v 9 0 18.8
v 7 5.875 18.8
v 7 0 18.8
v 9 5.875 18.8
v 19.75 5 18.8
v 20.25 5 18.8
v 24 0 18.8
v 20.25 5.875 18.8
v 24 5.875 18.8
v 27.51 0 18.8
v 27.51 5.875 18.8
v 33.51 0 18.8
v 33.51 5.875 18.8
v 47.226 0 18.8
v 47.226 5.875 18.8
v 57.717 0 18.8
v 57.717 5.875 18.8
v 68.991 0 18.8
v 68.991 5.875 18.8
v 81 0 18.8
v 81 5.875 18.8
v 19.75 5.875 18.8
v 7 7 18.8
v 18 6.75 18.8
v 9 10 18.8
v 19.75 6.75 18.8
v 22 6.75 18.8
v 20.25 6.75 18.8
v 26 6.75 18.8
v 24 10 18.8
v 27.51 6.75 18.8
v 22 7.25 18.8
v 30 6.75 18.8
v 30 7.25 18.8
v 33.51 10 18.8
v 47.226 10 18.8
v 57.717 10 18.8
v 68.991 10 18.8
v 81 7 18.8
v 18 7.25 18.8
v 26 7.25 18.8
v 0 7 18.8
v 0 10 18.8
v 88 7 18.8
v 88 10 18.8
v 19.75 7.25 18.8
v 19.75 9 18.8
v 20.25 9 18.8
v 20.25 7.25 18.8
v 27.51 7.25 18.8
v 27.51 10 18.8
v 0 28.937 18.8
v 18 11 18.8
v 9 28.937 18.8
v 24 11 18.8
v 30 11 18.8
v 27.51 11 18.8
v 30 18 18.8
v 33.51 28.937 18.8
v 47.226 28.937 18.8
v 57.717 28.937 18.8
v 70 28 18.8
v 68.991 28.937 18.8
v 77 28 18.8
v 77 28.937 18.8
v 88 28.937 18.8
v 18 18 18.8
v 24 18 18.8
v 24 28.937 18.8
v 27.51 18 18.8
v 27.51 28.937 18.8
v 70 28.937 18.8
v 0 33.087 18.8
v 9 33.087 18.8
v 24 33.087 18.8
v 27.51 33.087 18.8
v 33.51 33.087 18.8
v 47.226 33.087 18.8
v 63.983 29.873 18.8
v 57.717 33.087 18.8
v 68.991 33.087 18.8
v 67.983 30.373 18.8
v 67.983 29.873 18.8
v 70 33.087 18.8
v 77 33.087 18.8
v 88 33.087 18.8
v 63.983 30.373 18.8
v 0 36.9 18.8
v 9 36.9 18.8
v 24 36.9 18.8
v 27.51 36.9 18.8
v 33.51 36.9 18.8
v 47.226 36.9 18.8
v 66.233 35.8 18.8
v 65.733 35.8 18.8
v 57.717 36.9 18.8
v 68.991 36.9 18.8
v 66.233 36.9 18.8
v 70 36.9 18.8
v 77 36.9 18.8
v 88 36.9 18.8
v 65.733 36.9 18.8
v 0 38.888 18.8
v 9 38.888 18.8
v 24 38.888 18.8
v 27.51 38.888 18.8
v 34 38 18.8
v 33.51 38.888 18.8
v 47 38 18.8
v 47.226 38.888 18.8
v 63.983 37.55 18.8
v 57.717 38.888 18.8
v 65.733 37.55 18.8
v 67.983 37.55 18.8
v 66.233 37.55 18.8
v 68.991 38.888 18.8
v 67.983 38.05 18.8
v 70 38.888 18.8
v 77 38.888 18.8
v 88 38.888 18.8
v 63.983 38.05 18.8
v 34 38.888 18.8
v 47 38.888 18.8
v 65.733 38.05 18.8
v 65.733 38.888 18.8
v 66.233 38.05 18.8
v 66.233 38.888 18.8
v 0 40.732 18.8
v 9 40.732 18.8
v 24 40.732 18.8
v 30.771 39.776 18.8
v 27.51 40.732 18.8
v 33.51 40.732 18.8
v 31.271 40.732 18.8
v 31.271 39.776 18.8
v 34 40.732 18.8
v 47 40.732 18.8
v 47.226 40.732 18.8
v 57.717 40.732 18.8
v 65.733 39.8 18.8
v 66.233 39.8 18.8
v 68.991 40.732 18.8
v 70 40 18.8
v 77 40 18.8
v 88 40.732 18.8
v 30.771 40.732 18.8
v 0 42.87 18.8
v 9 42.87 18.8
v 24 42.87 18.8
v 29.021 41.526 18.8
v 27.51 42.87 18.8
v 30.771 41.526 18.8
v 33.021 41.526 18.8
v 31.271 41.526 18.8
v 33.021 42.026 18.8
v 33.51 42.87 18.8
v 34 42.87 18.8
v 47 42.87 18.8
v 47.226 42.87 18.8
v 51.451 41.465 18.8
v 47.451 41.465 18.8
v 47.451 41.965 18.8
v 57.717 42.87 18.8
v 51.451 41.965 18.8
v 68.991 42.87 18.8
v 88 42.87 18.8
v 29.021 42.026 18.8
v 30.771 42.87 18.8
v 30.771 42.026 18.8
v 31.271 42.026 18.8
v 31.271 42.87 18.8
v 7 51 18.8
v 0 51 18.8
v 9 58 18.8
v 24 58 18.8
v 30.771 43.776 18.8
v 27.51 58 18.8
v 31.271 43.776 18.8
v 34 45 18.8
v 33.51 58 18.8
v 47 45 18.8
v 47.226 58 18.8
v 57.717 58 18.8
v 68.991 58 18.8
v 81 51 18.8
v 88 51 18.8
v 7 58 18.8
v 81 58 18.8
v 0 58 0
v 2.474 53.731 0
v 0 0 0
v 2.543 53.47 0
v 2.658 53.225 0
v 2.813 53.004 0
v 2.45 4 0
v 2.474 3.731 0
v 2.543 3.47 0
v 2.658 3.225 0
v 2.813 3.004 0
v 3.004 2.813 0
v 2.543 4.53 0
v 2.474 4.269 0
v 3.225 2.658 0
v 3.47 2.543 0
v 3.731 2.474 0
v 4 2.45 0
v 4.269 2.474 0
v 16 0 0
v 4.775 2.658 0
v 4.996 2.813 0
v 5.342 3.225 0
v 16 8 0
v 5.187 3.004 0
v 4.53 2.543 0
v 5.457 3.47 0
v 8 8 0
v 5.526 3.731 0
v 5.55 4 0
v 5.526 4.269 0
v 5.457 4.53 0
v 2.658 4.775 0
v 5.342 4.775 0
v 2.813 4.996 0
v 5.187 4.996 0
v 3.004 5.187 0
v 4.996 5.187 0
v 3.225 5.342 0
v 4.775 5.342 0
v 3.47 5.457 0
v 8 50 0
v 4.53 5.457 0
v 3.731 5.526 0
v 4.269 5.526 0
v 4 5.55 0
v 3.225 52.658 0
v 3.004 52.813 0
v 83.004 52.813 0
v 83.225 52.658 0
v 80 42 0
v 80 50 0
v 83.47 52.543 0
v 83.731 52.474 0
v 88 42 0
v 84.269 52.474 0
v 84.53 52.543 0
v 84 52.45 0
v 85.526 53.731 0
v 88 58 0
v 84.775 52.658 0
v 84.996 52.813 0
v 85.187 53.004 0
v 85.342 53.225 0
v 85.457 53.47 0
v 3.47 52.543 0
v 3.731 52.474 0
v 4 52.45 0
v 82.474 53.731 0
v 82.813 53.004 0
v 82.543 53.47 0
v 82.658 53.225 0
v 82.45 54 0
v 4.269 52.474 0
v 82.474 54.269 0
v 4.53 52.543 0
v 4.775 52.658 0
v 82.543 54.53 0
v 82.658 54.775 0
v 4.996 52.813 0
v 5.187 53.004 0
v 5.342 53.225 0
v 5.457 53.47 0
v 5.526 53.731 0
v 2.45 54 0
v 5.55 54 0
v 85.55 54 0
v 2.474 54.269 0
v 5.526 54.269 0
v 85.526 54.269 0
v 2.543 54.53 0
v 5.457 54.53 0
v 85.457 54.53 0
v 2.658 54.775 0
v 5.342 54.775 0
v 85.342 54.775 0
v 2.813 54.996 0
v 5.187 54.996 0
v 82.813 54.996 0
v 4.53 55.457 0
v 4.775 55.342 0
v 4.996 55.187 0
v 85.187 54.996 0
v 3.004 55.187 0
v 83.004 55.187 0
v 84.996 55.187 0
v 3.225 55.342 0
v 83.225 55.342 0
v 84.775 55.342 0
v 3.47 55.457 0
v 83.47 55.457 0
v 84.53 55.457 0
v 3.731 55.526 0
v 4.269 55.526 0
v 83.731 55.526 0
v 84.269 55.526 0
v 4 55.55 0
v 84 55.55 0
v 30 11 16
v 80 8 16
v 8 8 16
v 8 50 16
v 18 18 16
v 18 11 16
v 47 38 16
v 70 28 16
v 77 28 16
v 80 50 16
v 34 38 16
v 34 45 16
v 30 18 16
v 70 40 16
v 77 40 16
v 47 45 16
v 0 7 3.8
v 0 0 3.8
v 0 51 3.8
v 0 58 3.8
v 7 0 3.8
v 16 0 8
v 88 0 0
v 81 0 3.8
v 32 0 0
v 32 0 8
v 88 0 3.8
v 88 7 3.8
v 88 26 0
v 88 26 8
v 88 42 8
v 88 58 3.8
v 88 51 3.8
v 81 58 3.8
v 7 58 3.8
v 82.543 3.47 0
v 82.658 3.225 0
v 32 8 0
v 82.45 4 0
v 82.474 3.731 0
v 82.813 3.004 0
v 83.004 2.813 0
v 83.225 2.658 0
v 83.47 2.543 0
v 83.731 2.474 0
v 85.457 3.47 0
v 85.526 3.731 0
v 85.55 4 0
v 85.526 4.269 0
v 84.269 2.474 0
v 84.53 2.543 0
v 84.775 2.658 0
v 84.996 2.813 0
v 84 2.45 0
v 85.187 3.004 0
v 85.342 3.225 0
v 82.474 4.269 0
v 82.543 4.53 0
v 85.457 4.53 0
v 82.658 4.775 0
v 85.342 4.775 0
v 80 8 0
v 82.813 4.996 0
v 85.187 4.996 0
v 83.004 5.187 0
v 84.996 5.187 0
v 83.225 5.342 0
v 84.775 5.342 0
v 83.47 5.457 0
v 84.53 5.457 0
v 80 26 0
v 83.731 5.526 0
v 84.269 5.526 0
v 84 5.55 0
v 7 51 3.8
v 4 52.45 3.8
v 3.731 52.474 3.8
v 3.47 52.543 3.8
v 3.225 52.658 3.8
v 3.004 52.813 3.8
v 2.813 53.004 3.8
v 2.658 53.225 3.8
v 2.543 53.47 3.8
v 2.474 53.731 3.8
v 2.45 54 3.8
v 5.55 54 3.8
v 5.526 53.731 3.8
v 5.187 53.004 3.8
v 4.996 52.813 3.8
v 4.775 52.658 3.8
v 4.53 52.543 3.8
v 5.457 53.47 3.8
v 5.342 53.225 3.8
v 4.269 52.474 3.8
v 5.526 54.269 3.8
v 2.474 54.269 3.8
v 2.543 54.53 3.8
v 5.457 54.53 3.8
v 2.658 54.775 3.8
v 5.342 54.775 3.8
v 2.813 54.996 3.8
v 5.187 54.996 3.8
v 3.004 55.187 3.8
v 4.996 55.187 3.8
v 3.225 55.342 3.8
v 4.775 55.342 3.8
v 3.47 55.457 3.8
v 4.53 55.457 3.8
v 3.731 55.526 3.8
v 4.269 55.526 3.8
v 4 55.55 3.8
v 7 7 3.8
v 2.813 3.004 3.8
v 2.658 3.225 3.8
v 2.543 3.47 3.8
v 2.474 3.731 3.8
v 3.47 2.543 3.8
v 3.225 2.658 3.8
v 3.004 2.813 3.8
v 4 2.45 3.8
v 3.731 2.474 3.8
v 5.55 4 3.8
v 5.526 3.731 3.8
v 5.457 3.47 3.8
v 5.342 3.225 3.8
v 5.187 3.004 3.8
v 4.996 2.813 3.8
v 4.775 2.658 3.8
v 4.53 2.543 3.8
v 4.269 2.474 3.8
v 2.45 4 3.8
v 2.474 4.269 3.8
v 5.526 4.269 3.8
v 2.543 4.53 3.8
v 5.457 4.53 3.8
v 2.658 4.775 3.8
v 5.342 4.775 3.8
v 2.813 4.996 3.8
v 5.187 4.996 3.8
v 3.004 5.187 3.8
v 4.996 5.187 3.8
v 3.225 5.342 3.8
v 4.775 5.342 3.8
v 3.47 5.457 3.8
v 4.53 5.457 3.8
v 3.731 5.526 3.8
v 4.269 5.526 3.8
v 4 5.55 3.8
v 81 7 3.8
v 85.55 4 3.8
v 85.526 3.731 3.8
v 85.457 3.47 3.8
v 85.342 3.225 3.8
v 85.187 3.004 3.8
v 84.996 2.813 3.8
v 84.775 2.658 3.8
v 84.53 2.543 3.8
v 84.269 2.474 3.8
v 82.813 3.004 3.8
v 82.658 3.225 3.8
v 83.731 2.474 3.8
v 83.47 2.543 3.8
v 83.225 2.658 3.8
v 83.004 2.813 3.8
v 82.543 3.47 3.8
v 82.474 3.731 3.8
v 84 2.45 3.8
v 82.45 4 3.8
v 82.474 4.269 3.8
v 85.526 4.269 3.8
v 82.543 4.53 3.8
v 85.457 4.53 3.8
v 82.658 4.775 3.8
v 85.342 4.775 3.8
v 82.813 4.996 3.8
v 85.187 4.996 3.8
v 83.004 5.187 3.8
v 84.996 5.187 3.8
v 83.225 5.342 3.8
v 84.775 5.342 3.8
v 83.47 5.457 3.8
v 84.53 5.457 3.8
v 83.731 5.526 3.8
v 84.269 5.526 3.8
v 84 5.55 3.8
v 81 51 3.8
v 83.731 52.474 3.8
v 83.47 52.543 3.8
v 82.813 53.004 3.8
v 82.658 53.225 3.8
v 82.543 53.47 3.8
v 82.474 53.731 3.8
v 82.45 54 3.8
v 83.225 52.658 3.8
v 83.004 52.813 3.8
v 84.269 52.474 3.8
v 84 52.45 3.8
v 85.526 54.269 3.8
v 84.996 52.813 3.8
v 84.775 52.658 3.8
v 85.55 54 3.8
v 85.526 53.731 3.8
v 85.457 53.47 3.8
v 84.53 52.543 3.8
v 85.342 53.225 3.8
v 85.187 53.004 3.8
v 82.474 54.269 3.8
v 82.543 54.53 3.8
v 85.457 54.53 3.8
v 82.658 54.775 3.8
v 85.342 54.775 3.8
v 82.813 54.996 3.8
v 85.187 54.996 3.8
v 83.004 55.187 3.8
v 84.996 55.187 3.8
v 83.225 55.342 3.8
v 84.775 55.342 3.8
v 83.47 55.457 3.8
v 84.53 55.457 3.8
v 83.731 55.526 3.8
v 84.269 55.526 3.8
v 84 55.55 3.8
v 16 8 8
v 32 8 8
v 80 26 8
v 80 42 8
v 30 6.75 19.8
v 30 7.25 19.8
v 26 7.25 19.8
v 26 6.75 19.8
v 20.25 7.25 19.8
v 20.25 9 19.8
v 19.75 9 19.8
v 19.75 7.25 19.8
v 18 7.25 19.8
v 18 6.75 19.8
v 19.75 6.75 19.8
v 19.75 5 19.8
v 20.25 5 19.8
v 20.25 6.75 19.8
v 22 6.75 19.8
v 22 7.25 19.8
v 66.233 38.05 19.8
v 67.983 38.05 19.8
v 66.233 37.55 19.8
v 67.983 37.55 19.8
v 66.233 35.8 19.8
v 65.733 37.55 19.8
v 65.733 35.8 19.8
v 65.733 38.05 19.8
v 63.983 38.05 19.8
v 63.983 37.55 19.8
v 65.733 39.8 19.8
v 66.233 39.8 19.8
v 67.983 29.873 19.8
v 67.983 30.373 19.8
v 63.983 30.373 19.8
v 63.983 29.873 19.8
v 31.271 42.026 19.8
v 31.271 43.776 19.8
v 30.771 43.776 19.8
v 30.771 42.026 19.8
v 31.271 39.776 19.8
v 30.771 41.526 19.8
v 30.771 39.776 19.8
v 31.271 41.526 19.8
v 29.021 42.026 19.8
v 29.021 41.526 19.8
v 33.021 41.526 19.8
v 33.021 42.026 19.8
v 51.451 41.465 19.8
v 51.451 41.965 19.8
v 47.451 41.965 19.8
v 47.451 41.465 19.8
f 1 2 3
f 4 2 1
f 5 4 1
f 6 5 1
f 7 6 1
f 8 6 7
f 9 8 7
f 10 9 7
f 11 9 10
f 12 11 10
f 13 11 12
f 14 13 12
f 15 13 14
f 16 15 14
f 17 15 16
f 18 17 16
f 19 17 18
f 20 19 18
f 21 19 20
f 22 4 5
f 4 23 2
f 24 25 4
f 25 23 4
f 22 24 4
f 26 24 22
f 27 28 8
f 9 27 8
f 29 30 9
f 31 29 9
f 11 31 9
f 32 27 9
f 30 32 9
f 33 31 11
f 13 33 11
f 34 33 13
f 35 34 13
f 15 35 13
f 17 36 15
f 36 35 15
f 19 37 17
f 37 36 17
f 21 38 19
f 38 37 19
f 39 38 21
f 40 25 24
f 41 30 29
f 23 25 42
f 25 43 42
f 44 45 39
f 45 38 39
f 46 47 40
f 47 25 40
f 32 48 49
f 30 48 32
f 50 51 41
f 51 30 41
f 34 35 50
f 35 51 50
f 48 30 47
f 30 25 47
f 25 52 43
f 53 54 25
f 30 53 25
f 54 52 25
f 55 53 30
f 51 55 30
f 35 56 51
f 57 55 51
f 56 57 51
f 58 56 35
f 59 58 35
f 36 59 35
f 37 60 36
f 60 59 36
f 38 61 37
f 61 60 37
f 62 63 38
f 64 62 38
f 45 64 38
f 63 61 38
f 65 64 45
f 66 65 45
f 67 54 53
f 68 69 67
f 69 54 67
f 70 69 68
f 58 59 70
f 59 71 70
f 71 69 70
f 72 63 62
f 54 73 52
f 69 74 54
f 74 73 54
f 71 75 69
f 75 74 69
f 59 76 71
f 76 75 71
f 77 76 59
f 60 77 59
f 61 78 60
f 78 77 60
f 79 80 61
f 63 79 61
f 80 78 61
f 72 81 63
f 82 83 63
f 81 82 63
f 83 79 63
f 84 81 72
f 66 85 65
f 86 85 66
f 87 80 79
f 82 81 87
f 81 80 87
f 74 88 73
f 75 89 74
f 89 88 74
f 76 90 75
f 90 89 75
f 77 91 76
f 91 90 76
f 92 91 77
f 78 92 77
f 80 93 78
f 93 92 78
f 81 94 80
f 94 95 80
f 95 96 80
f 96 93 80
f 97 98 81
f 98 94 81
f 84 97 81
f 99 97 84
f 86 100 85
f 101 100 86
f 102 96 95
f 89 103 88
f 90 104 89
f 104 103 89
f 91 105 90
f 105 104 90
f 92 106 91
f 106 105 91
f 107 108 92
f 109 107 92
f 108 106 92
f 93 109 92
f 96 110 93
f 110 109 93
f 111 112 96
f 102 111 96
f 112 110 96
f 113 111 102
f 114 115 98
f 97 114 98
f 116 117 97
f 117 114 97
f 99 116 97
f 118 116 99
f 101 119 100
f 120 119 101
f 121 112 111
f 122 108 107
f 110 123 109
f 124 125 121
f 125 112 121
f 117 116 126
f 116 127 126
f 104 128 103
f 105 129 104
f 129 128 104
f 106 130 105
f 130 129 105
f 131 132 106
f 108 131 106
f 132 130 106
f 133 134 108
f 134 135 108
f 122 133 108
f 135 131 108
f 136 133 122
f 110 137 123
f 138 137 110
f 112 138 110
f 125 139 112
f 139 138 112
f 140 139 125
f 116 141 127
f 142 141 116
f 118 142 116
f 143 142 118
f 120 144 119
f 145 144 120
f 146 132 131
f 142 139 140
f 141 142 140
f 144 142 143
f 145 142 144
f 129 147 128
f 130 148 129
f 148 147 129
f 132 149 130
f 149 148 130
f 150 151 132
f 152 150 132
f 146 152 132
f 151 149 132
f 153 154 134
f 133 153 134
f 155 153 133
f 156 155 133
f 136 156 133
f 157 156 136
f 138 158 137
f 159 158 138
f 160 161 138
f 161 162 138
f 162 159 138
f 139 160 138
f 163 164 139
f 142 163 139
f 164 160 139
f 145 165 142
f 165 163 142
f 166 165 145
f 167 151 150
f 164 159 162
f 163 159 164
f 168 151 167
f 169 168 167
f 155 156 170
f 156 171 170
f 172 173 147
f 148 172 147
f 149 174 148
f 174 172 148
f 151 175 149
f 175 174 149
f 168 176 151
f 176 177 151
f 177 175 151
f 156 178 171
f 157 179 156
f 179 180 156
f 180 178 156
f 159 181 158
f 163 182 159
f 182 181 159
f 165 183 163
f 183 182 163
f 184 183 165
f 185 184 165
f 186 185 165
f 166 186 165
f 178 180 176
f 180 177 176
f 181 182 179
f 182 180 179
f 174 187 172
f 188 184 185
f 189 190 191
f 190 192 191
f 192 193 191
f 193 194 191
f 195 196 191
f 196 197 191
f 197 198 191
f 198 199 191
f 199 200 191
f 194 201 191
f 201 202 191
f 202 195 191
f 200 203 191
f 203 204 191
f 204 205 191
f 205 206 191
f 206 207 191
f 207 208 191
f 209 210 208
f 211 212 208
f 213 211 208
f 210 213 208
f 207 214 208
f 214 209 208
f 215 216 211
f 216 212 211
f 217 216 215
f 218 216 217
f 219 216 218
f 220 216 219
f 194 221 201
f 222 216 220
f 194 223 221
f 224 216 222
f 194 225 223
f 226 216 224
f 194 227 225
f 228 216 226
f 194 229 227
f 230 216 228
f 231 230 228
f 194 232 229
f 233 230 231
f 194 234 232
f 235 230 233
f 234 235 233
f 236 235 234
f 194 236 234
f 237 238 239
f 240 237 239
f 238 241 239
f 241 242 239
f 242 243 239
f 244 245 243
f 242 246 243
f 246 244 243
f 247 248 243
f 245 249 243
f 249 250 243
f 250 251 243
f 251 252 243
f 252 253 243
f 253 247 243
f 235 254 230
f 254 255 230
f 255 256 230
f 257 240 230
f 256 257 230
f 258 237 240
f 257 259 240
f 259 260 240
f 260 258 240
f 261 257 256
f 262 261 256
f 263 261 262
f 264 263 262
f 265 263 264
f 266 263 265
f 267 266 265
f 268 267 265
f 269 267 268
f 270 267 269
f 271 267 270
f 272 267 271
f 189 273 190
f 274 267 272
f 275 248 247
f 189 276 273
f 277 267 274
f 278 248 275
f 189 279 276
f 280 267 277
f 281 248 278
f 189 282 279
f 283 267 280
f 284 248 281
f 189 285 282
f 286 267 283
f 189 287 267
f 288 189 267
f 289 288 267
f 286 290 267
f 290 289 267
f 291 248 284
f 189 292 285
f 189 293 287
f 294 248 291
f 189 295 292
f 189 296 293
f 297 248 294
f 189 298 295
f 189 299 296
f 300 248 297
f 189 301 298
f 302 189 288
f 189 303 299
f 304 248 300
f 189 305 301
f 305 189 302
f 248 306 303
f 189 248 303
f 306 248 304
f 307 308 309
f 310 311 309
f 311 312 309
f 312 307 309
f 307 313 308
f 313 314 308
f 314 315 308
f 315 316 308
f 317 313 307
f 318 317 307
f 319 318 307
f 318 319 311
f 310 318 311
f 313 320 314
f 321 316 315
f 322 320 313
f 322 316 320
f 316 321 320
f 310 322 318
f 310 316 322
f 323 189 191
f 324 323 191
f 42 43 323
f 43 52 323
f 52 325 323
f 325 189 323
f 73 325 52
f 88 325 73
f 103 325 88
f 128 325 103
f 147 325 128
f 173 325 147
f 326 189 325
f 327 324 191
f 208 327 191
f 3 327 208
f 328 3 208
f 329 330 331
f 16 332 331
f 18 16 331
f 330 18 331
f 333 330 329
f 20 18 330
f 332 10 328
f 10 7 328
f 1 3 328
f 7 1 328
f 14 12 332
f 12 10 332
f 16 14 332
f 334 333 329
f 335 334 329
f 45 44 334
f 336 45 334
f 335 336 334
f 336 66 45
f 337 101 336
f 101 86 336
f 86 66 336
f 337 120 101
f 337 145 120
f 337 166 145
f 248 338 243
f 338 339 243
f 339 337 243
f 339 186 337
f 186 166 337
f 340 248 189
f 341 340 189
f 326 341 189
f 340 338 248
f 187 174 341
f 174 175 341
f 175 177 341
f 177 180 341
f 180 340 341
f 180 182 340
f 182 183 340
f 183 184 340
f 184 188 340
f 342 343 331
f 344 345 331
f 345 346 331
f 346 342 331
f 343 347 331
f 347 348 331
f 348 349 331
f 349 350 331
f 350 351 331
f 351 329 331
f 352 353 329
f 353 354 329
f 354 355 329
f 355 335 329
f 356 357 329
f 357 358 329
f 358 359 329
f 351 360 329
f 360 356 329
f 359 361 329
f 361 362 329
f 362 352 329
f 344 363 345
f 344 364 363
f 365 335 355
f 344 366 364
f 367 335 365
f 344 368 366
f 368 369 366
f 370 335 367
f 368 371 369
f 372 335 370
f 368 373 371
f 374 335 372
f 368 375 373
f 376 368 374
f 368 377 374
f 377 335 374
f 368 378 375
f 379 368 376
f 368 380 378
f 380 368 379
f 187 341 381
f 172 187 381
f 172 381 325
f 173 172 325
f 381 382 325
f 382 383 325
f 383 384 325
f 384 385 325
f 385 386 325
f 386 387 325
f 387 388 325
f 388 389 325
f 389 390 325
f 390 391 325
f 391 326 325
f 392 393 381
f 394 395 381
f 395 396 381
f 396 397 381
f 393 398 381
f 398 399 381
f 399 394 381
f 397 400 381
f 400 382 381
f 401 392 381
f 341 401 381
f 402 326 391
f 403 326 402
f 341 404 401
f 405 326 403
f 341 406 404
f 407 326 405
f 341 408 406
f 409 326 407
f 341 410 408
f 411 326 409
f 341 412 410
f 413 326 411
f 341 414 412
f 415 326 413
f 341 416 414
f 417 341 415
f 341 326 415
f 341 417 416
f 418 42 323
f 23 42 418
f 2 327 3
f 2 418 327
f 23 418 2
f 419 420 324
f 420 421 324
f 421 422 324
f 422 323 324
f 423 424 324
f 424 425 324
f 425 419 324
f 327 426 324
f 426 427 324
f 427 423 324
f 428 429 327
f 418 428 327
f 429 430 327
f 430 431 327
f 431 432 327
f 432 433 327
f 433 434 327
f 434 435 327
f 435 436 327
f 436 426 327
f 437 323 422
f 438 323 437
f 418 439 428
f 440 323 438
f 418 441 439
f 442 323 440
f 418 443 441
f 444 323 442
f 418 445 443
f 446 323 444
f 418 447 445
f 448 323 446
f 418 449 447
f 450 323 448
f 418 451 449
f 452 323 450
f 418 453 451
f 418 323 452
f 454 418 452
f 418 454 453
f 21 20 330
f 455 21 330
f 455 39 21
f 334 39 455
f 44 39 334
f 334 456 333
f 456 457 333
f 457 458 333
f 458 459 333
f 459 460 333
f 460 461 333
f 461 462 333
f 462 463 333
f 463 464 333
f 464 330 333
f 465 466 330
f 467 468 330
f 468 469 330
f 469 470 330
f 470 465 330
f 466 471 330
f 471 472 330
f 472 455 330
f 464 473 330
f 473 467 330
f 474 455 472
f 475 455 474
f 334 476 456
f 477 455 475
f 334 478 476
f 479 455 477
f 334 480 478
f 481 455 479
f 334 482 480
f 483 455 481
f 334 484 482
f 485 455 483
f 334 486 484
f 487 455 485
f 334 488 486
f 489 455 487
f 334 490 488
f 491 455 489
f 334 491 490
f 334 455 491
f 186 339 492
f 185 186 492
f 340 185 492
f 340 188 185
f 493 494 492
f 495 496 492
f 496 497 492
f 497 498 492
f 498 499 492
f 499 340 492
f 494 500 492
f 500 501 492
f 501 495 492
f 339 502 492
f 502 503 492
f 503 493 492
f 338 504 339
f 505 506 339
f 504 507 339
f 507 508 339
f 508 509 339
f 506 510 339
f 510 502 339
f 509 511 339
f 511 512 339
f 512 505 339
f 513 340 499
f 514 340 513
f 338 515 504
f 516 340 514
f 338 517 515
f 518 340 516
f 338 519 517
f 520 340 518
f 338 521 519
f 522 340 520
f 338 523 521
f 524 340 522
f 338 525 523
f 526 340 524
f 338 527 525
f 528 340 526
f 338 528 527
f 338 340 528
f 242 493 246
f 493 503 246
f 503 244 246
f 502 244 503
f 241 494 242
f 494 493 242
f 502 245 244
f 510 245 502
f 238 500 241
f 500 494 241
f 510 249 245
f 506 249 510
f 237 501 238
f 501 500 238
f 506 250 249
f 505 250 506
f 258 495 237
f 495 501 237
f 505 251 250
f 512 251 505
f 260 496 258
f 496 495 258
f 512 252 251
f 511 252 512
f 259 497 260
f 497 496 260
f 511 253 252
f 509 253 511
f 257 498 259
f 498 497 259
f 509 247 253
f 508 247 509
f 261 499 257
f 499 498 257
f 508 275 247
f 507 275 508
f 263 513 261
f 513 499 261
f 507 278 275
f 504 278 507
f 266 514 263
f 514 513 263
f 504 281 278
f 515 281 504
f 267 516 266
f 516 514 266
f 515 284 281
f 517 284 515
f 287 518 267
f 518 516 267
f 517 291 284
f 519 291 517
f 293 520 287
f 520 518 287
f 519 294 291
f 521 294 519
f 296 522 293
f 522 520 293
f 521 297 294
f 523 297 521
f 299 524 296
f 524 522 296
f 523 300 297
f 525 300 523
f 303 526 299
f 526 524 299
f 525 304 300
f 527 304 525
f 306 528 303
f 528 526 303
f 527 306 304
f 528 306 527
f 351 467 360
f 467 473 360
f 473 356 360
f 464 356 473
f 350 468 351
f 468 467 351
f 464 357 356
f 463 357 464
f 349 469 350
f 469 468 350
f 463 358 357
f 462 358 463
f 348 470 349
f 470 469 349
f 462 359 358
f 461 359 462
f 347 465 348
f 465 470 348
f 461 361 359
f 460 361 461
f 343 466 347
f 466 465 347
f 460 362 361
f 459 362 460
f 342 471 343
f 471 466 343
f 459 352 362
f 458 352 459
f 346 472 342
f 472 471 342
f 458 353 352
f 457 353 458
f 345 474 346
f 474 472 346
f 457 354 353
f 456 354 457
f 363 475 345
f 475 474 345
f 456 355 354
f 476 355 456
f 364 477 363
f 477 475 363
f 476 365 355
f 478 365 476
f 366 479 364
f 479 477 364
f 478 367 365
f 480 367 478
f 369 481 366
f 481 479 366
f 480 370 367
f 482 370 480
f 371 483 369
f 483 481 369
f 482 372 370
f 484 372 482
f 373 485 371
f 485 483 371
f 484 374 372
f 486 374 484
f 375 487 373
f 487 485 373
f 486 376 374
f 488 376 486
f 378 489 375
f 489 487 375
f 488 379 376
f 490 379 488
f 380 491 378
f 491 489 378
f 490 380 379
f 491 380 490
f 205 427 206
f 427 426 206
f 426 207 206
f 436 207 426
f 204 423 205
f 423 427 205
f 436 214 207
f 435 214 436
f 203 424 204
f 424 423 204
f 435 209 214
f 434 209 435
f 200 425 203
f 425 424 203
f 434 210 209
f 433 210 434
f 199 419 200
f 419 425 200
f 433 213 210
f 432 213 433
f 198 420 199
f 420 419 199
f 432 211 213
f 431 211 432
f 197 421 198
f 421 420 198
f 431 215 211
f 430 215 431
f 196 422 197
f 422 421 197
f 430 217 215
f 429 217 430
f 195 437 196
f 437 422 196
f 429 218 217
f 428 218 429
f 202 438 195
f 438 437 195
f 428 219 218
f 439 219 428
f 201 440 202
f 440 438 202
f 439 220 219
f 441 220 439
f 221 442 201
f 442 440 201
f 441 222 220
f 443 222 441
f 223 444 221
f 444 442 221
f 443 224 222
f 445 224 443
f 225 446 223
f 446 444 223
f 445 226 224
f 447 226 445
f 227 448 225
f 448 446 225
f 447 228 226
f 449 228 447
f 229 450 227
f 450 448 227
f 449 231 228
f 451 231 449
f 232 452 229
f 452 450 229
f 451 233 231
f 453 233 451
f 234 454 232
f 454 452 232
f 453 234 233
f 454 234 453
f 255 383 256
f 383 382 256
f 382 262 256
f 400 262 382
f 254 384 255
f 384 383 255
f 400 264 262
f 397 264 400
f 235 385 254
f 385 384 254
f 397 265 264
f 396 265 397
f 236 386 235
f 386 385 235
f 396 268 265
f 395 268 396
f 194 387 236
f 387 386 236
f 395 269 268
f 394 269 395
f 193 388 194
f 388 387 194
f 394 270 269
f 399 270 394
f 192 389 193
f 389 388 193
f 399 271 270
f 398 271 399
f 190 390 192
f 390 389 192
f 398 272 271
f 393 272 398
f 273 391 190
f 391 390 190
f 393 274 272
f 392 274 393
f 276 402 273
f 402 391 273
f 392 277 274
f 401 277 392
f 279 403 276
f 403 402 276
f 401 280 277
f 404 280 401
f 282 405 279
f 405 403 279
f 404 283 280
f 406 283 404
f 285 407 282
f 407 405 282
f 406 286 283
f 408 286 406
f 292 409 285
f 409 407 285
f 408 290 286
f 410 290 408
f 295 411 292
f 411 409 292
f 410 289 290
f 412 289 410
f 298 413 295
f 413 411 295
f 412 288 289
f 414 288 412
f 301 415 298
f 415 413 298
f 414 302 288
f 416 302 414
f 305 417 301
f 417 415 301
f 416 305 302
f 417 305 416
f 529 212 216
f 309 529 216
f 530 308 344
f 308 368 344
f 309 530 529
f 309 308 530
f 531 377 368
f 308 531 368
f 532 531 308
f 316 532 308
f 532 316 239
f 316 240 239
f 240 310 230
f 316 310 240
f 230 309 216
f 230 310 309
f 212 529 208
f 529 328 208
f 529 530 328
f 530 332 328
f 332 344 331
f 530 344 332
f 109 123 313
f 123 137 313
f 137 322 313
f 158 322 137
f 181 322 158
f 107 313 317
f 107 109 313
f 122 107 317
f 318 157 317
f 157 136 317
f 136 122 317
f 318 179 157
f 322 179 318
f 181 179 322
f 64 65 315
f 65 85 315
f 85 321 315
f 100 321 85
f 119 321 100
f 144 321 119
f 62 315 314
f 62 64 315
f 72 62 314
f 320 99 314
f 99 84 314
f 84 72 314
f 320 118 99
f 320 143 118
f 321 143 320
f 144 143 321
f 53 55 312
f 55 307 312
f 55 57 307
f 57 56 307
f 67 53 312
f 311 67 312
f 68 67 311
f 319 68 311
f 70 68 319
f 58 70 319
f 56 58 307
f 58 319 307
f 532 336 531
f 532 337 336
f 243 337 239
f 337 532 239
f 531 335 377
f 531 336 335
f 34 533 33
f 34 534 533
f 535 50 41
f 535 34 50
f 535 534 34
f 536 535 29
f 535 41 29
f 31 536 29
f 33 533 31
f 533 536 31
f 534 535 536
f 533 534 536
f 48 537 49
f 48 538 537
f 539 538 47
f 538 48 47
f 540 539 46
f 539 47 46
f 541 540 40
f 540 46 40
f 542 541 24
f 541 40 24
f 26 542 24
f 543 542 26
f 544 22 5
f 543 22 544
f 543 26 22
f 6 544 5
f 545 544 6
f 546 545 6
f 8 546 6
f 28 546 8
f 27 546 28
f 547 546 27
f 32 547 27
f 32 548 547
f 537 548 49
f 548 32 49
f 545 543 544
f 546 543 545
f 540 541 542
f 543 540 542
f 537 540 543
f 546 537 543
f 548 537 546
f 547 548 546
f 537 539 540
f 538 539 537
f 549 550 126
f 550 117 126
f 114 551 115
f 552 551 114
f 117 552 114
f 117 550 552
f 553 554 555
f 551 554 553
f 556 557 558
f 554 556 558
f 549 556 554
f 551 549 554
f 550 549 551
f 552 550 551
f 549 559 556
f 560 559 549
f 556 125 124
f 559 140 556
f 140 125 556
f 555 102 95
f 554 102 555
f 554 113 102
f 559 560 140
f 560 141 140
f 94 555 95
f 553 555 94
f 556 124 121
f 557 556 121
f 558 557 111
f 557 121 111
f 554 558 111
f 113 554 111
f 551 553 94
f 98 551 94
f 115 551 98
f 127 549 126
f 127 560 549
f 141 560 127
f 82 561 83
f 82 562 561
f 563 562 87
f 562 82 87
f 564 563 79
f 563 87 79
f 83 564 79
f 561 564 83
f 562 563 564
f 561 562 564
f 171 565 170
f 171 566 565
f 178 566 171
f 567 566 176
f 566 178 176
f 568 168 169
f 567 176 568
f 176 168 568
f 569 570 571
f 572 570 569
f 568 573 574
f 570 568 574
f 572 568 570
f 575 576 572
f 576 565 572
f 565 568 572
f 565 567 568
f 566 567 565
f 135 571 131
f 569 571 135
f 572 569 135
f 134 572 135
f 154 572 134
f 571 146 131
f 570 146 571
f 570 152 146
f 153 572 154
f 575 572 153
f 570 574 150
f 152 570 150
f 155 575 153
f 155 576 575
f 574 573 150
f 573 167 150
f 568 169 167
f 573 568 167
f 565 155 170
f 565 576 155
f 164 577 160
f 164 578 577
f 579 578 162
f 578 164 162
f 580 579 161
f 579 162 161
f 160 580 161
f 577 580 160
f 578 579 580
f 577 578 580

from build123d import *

# Parameters (mm, degrees)
SKETCH_1_W           = 88
SKETCH_1_H           = 58
EXTRUDE_1_DEPTH      = 18.8
SKETCH_2_W           = 7
SKETCH_2_H           = 7
CUT_EXTRUDE_1_DEPTH  = 15
SKETCH_3_R           = 1.55
CUT_EXTRUDE_2_DEPTH  = 3
SKETCH_4_W           = 72
SKETCH_4_H           = 42
CUT_EXTRUDE_6_DEPTH  = 16
SKETCH_6_W           = 16
SKETCH_6_H           = 8
CUT_EXTRUDE_7_DEPTH  = 8
CUT_EXTRUDE_11_REACH = 109.058
SKETCH_7_W           = 12
SKETCH_7_H           = 7
SKETCH_7_W_2         = 7
SKETCH_7_H_2         = 12
SKETCH_7_W_3         = 13
CUT_EXTRUDE_13_REACH = 109.058
SKETCH_10_W          = 8
SKETCH_10_H          = 16
CUT_EXTRUDE_14_REACH = 108.457
SKETCH_3_2_R         = 1.55
SKETCH_14_W          = 4
SKETCH_14_H          = 0.5
EXTRUDE_3_DEPTH      = 1
SKETCH_16_W          = 4
SKETCH_16_H          = 0.5
EXTRUDE_5_DEPTH      = 1
SKETCH_18_W          = 4
SKETCH_18_H          = 0.5
EXTRUDE_6_DEPTH      = 1


with BuildPart() as part:
    # 草图1 → 凸台-拉伸1 (new body)
    with BuildSketch(Plane.XY):
        with Locations((44, 29)):
            Rectangle(SKETCH_1_W, SKETCH_1_H)
    extrude(amount=EXTRUDE_1_DEPTH)

    # 草图2 → 切除-拉伸1 (cut)
    with BuildSketch(Plane.XY.offset(18.8)):
        with Locations((3.5, 54.5)):
            Rectangle(SKETCH_2_W, SKETCH_2_H)
        with Locations((3.5, 3.5)):
            Rectangle(SKETCH_2_W, SKETCH_2_H)
        with Locations((84.5, 3.5)):
            Rectangle(SKETCH_2_W, SKETCH_2_H)
        with Locations((84.5, 54.5)):
            Rectangle(SKETCH_2_W, SKETCH_2_H)
    extrude(amount=-CUT_EXTRUDE_1_DEPTH, mode=Mode.SUBTRACT)

    # 草图3 → 切除-拉伸2 (cut)
    with BuildSketch(Plane.XY.offset(3.8)):
        with Locations((4, 54)):
            Circle(SKETCH_3_R)
        with Locations((4, 4)):
            Circle(SKETCH_3_R)
        with Locations((84, 4)):
            Circle(SKETCH_3_R)
        with Locations((84, 54)):
            Circle(SKETCH_3_R)
    extrude(amount=-CUT_EXTRUDE_2_DEPTH, mode=Mode.SUBTRACT)

    # 草图4 → 切除-拉伸6 (cut)
    with BuildSketch(Plane(origin=(0, 0, 0), x_dir=(-1, 0, 0), z_dir=(0, 0, -1))):
        with Locations((-44, 29)):
            Rectangle(SKETCH_4_W, SKETCH_4_H)
    extrude(amount=-CUT_EXTRUDE_6_DEPTH, mode=Mode.SUBTRACT)

    # 草图6 → 切除-拉伸7 (cut)
    with BuildSketch(Plane.XZ):
        with Locations((24, 4)):
            Rectangle(SKETCH_6_W, SKETCH_6_H)
    extrude(amount=-CUT_EXTRUDE_7_DEPTH, mode=Mode.SUBTRACT)

    # 草图7 → 切除-拉伸11 (cut, up to next)
    with BuildSketch(Plane.XY.offset(18.8), mode=Mode.PRIVATE) as cut_extrude_11_sk1:
        with Locations((24, 14.5)):
            Rectangle(SKETCH_7_W, SKETCH_7_H)
    cut_extrude_11_tool1 = extrude(cut_extrude_11_sk1.sketch, amount=-CUT_EXTRUDE_11_REACH, mode=Mode.PRIVATE) & part.part
    # 草图7 → 切除-拉伸11 (cut, up to next)
    with BuildSketch(Plane.XY.offset(18.8), mode=Mode.PRIVATE) as cut_extrude_11_sk2:
        with Locations((73.5, 34)):
            Rectangle(SKETCH_7_W_2, SKETCH_7_H_2)
    cut_extrude_11_tool2 = extrude(cut_extrude_11_sk2.sketch, amount=-CUT_EXTRUDE_11_REACH, mode=Mode.PRIVATE) & part.part
    # 草图7 → 切除-拉伸11 (cut, up to next)
    with BuildSketch(Plane.XY.offset(18.8), mode=Mode.PRIVATE) as cut_extrude_11_sk3:
        with Locations((40.5, 41.5)):
            Rectangle(SKETCH_7_W_3, SKETCH_7_H)
    cut_extrude_11_tool3 = extrude(cut_extrude_11_sk3.sketch, amount=-CUT_EXTRUDE_11_REACH, mode=Mode.PRIVATE) & part.part
    add(cut_extrude_11_tool1.solids().sort_by_distance((24, 14.5, 18.8))[0], mode=Mode.SUBTRACT)
    add(cut_extrude_11_tool2.solids().sort_by_distance((73.5, 34, 18.8))[0], mode=Mode.SUBTRACT)
    add(cut_extrude_11_tool3.solids().sort_by_distance((40.5, 41.5, 18.8))[0], mode=Mode.SUBTRACT)

    # 草图10 → 切除-拉伸13 (cut, up to next)
    with BuildSketch(Plane(origin=(88, 0, 0), x_dir=(0, 0, -1), z_dir=(1, 0, 0)), mode=Mode.PRIVATE) as cut_extrude_13_sk1:
        with Locations((-4, 34)):
            Rectangle(SKETCH_10_W, SKETCH_10_H)
    cut_extrude_13_tool1 = extrude(cut_extrude_13_sk1.sketch, amount=-CUT_EXTRUDE_13_REACH, mode=Mode.PRIVATE) & part.part
    add(cut_extrude_13_tool1.solids().sort_by_distance((88, 34, 4))[0], mode=Mode.SUBTRACT)

    # 草图3<2> → 切除-拉伸14 (cut, up to next)
    with BuildSketch(Plane.XY.offset(3.8), mode=Mode.PRIVATE) as cut_extrude_14_sk1:
        with Locations((4, 54)):
            Circle(SKETCH_3_2_R)
    cut_extrude_14_tool1 = extrude(cut_extrude_14_sk1.sketch, amount=-CUT_EXTRUDE_14_REACH, mode=Mode.PRIVATE) & part.part
    # 草图3<2> → 切除-拉伸14 (cut, up to next)
    with BuildSketch(Plane.XY.offset(3.8), mode=Mode.PRIVATE) as cut_extrude_14_sk2:
        with Locations((4, 4)):
            Circle(SKETCH_3_2_R)
    cut_extrude_14_tool2 = extrude(cut_extrude_14_sk2.sketch, amount=-CUT_EXTRUDE_14_REACH, mode=Mode.PRIVATE) & part.part
    # 草图3<2> → 切除-拉伸14 (cut, up to next)
    with BuildSketch(Plane.XY.offset(3.8), mode=Mode.PRIVATE) as cut_extrude_14_sk3:
        with Locations((84, 4)):
            Circle(SKETCH_3_2_R)
    cut_extrude_14_tool3 = extrude(cut_extrude_14_sk3.sketch, amount=-CUT_EXTRUDE_14_REACH, mode=Mode.PRIVATE) & part.part
    # 草图3<2> → 切除-拉伸14 (cut, up to next)
    with BuildSketch(Plane.XY.offset(3.8), mode=Mode.PRIVATE) as cut_extrude_14_sk4:
        with Locations((84, 54)):
            Circle(SKETCH_3_2_R)
    cut_extrude_14_tool4 = extrude(cut_extrude_14_sk4.sketch, amount=-CUT_EXTRUDE_14_REACH, mode=Mode.PRIVATE) & part.part
    add(cut_extrude_14_tool1.solids().sort_by_distance((4, 54, 3.8))[0], mode=Mode.SUBTRACT)
    add(cut_extrude_14_tool2.solids().sort_by_distance((4, 4, 3.8))[0], mode=Mode.SUBTRACT)
    add(cut_extrude_14_tool3.solids().sort_by_distance((84, 4, 3.8))[0], mode=Mode.SUBTRACT)
    add(cut_extrude_14_tool4.solids().sort_by_distance((84, 54, 3.8))[0], mode=Mode.SUBTRACT)

    # 草图14 → 凸台-拉伸3 (add)
    with BuildSketch(Plane.XY.offset(18.8)):
        Polygon((19.75, 7.25), (18, 7.25), (18, 6.75), (19.75, 6.75), (19.75, 5), (20.25, 5), (20.25, 6.75), (22, 6.75), (22, 7.25), (20.25, 7.25), (20.25, 9), (19.75, 9), align=None)
        with Locations((28, 7)):
            Rectangle(SKETCH_14_W, SKETCH_14_H)
    extrude(amount=EXTRUDE_3_DEPTH)

    # 草图16 → 凸台-拉伸5 (add)
    with BuildSketch(Plane.XY.offset(18.8)):
        Polygon((65.732583839, 38.050395287), (63.982583839, 38.050395287), (63.982583839, 37.550395287), (65.732583839, 37.550395287), (65.732583839, 35.800395287), (66.232583839, 35.800395287), (66.232583839, 37.550395287), (67.982583839, 37.550395287), (67.982583839, 38.050395287), (66.232583839, 38.050395287), (66.232583839, 39.800395287), (65.732583839, 39.800395287), align=None)
        with Locations((65.982583839, 30.12335271)):
            Rectangle(SKETCH_16_W, SKETCH_16_H)
    extrude(amount=EXTRUDE_5_DEPTH)

    # 草图18 → 凸台-拉伸6 (add)
    with BuildSketch(Plane.XY.offset(18.8)):
        Polygon((30.770756215, 42.025617215), (29.020756215, 42.025617215), (29.020756215, 41.525617215), (30.770756215, 41.525617215), (30.770756215, 39.775617215), (31.270756215, 39.775617215), (31.270756215, 41.525617215), (33.020756215, 41.525617215), (33.020756215, 42.025617215), (31.270756215, 42.025617215), (31.270756215, 43.775617215), (30.770756215, 43.775617215), align=None)
        with Locations((49.451487349, 41.714982736)):
            Rectangle(SKETCH_18_W, SKETCH_18_H)
    extrude(amount=EXTRUDE_6_DEPTH)


solid = part.part
